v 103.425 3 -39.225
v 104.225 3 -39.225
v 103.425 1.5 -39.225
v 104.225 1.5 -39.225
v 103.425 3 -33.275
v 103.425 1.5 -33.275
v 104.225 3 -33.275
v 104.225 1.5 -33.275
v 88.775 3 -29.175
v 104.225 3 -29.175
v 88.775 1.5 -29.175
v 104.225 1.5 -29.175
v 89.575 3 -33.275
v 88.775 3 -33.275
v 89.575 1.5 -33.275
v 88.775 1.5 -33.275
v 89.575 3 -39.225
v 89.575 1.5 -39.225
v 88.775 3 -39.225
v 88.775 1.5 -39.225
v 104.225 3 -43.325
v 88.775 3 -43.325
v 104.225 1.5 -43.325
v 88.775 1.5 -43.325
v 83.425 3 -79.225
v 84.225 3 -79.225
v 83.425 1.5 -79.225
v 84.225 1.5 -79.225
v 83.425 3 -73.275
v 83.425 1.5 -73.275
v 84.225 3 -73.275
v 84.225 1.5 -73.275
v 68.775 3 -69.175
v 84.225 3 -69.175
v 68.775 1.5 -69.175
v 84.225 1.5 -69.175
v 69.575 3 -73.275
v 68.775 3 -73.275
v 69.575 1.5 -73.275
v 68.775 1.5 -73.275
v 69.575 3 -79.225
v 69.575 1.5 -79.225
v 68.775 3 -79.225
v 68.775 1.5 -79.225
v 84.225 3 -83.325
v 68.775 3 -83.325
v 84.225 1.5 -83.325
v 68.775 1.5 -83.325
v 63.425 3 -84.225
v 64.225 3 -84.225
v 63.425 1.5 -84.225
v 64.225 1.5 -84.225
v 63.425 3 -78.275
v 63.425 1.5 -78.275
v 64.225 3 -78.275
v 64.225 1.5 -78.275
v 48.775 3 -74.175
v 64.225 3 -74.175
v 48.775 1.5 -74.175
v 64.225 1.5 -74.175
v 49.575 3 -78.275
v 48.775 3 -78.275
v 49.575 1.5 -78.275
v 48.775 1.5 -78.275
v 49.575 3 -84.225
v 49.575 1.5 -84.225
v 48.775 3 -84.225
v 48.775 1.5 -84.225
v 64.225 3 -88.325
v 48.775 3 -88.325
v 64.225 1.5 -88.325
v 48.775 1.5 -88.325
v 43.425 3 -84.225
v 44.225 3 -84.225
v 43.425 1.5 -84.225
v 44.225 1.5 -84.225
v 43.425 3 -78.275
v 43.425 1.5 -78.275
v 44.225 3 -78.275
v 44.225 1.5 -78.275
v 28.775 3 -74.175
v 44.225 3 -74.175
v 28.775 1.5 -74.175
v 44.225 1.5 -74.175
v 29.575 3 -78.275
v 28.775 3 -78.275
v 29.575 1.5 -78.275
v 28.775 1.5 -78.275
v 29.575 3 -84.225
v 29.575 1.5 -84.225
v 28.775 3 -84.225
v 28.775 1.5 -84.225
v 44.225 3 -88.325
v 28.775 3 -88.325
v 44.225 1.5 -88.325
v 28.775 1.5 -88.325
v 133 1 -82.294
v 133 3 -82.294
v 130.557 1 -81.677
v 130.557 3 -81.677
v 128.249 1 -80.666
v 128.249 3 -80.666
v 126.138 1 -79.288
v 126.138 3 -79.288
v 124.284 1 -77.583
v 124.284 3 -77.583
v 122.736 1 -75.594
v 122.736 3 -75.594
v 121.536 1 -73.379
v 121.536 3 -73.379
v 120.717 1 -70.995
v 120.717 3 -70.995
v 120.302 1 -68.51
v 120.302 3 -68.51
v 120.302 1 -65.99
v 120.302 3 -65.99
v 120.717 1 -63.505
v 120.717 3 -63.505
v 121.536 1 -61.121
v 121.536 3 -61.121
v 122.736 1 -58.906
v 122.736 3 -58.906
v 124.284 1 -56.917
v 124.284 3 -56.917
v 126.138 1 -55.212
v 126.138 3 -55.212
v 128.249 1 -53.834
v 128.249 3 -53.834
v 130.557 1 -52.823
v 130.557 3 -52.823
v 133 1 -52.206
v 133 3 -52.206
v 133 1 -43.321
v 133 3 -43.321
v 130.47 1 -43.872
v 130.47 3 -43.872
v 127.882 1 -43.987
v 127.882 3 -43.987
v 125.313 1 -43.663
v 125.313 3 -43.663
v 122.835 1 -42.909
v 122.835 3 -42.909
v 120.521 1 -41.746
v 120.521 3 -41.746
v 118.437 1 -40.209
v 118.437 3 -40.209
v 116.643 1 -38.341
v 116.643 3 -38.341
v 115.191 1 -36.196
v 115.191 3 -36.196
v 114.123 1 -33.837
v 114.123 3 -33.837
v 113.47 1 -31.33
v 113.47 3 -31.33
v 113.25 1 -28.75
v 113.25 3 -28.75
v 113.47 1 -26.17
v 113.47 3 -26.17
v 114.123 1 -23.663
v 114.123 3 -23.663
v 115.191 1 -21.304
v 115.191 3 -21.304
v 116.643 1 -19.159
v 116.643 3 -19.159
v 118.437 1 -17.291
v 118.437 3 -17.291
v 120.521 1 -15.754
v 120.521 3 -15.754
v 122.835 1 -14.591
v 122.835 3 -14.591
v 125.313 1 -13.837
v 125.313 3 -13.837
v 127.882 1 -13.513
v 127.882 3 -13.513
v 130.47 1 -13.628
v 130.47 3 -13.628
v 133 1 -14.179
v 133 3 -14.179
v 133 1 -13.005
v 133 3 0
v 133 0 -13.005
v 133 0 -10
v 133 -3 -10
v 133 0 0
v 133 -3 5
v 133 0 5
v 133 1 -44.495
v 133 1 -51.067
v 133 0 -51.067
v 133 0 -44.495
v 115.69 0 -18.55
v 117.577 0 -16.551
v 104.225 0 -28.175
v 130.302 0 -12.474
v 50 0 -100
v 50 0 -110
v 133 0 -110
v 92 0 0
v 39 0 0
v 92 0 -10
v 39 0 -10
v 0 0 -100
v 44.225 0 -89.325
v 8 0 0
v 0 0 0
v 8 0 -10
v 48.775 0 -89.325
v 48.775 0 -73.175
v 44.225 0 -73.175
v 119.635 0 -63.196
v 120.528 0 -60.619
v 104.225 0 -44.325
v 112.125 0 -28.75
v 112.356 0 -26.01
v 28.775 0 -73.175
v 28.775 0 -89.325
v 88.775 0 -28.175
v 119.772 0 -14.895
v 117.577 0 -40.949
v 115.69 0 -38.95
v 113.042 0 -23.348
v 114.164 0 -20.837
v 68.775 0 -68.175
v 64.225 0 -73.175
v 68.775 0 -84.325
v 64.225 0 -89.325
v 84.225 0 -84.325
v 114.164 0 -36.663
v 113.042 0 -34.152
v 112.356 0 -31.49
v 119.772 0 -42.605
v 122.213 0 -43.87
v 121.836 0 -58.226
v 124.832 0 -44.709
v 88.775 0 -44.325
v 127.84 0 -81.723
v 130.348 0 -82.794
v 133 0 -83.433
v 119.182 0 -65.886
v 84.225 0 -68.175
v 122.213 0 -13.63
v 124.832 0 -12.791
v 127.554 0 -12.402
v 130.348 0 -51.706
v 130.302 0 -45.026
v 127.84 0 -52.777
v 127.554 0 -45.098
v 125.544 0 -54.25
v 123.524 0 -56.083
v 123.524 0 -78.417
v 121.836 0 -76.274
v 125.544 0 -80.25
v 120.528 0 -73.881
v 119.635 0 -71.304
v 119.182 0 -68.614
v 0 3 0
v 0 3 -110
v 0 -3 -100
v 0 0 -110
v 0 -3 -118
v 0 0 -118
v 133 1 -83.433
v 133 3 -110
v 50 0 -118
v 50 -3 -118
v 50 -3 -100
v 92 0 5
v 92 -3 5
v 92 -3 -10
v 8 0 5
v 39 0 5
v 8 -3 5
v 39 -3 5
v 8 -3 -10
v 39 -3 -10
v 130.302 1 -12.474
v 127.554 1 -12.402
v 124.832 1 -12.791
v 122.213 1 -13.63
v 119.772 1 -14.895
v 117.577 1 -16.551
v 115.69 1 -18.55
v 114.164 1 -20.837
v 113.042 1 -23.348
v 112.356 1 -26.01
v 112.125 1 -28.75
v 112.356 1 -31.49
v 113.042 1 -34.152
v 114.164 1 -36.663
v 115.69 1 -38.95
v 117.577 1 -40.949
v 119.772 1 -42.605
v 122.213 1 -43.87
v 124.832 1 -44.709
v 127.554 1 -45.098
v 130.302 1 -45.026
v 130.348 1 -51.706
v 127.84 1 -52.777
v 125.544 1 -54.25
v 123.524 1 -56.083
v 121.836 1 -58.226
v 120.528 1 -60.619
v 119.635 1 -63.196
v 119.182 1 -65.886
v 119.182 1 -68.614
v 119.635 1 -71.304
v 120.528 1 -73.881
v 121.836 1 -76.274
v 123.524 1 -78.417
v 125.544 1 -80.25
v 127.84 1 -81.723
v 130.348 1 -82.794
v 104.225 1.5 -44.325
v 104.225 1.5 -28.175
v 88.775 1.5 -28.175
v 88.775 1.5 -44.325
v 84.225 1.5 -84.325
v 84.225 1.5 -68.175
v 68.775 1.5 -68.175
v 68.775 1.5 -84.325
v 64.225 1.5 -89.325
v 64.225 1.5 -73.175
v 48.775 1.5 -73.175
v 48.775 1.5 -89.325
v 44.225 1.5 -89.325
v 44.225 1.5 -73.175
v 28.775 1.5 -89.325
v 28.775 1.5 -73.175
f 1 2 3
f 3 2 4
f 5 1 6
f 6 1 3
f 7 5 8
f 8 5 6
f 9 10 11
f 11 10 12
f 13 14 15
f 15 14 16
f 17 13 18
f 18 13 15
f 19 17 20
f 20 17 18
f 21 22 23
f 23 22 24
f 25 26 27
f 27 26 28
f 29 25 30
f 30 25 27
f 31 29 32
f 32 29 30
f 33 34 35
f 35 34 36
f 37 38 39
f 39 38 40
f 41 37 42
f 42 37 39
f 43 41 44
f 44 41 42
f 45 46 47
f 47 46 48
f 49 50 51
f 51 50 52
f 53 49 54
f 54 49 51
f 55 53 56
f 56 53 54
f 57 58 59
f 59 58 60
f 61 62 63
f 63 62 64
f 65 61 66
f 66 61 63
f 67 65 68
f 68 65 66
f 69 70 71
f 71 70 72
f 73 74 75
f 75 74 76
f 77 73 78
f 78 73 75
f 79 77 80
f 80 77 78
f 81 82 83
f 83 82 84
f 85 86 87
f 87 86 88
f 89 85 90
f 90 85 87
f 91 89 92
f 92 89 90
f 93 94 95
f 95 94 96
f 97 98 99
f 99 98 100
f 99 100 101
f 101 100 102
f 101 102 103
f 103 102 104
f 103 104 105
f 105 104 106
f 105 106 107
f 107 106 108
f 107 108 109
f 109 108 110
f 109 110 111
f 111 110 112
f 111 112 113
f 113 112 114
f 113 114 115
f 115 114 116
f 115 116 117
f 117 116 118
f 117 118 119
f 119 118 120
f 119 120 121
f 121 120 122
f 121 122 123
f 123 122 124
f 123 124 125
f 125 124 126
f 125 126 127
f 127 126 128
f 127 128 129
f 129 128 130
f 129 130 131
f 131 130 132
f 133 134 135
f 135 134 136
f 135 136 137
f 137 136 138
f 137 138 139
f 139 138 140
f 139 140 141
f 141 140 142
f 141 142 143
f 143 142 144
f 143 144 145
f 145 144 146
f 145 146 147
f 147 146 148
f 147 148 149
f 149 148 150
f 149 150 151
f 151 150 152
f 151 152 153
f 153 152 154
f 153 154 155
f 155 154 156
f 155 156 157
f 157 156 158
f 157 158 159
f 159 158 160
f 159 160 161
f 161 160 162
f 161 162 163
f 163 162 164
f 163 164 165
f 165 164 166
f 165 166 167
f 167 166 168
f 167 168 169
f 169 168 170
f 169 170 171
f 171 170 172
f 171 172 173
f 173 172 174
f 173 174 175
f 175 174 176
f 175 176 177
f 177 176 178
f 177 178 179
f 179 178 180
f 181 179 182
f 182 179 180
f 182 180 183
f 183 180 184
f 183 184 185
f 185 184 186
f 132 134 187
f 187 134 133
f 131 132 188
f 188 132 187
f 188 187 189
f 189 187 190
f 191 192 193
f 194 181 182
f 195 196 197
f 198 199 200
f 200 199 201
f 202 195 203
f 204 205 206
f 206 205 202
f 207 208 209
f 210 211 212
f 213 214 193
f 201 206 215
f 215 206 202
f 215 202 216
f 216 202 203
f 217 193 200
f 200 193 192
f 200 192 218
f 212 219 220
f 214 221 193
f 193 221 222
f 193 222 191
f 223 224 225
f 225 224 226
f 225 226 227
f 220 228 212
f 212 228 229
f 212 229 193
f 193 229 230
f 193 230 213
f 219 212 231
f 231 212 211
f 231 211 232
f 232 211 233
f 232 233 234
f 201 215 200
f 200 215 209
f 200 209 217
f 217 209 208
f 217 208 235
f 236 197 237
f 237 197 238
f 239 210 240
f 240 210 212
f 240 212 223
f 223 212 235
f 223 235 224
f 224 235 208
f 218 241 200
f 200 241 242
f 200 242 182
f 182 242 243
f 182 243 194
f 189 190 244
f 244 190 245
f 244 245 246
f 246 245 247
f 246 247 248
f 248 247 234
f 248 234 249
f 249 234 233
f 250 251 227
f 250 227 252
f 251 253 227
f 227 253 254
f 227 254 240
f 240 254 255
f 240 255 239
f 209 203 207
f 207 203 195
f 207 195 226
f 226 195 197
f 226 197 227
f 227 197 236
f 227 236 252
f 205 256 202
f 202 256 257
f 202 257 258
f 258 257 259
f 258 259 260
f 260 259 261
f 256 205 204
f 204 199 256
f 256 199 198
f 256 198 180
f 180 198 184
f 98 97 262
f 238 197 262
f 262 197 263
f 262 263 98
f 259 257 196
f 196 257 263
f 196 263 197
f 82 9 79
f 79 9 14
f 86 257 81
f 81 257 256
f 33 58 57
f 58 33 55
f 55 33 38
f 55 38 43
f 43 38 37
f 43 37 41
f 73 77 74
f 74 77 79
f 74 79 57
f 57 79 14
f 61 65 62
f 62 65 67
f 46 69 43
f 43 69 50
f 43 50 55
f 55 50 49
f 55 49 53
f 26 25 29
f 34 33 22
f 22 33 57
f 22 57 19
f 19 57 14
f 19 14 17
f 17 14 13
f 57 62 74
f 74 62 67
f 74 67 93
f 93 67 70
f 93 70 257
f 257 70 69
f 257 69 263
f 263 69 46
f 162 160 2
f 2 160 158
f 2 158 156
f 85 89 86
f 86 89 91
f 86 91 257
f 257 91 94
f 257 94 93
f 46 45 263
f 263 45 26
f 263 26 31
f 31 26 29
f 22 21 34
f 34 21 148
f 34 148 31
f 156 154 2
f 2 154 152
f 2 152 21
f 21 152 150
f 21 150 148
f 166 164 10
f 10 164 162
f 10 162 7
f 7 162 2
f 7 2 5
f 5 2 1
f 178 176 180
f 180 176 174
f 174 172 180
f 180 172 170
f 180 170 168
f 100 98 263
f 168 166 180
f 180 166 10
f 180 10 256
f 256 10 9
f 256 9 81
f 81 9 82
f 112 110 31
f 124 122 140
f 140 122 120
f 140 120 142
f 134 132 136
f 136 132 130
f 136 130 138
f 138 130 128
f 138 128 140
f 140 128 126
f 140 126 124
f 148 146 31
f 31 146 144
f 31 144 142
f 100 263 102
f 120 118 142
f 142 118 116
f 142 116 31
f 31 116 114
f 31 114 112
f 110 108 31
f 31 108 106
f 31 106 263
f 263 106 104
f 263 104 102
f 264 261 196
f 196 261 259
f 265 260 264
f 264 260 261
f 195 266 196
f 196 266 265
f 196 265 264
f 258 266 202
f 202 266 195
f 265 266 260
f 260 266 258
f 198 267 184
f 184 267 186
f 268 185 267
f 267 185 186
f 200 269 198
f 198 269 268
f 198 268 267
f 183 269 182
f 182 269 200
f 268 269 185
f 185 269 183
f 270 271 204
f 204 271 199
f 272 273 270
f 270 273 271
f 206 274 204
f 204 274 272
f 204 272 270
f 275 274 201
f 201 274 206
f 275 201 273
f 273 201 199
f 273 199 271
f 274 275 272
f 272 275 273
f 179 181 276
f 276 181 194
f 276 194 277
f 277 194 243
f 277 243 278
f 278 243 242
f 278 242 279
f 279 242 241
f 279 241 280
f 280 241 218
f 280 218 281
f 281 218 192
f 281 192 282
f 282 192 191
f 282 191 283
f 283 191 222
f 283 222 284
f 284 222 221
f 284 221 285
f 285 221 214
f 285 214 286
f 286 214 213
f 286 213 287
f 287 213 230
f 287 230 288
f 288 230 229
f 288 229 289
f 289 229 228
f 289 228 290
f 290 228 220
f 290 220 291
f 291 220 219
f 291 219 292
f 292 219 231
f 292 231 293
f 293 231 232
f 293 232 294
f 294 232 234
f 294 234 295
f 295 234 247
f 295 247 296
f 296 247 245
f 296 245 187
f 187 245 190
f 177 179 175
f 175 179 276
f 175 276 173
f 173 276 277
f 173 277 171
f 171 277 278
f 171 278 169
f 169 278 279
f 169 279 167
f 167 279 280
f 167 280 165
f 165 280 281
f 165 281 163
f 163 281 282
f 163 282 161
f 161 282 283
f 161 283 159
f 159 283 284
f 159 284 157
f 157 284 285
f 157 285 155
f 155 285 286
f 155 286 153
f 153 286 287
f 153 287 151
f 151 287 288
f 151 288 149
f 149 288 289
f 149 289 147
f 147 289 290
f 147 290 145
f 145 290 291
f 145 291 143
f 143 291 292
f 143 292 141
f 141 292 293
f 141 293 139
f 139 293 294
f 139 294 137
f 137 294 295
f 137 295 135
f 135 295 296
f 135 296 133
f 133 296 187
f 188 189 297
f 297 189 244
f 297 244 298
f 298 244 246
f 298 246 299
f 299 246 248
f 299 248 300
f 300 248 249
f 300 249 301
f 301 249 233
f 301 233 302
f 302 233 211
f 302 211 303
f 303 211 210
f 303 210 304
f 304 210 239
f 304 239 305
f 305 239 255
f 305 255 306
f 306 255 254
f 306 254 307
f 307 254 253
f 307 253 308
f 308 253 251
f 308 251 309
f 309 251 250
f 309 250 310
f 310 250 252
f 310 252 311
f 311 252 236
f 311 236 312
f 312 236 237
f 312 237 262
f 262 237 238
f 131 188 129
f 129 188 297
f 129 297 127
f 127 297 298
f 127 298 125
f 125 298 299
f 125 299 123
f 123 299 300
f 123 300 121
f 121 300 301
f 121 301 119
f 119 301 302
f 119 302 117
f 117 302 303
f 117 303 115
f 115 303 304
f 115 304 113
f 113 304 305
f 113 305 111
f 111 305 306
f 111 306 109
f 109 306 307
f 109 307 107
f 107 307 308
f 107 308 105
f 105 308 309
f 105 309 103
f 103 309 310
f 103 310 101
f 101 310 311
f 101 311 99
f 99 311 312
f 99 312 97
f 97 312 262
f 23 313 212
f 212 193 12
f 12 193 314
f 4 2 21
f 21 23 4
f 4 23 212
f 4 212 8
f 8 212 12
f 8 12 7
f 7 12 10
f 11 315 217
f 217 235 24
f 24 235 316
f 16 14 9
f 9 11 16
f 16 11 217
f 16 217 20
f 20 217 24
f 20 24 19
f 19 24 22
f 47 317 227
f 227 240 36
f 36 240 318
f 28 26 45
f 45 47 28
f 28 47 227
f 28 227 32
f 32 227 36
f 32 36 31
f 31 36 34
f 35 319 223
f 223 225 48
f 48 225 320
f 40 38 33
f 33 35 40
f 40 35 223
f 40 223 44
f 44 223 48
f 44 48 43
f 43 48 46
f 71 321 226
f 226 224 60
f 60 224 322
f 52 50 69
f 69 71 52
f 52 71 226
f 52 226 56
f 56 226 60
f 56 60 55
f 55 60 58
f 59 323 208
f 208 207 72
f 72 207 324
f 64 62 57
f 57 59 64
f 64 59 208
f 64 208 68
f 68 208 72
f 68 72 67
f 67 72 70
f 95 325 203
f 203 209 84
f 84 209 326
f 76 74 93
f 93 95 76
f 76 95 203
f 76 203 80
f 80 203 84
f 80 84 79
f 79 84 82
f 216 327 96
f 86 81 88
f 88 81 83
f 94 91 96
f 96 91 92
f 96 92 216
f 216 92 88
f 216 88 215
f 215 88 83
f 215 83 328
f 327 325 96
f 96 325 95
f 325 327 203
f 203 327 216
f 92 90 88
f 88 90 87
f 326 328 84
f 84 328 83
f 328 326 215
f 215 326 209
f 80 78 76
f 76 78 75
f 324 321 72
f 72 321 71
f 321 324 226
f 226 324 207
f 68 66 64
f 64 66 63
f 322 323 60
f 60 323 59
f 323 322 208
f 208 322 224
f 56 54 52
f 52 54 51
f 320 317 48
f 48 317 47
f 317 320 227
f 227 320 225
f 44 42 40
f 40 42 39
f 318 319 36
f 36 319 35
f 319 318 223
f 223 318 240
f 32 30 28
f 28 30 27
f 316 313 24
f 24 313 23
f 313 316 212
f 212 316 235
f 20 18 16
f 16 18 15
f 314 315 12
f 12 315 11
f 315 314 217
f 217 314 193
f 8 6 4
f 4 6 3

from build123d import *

# Parameters (mm, degrees)
SKETCH1_W           = 133
SKETCH1_H           = 110
BOSS_EXTRUDE1_DEPTH = 3
SKETCH2_W           = 50
SKETCH2_H           = 18
SKETCH2_W_2         = 41
SKETCH2_H_2         = 15
SKETCH2_W_3         = 31
BOSS_EXTRUDE2_DEPTH = 3
CUT_EXTRUDE1_REACH  = 8
SKETCH3_R           = 15.25
SKETCH4_R           = 16.375
CUT_EXTRUDE2_DEPTH  = 1
CUT_EXTRUDE3_DEPTH  = 7
SKETCH7_W           = 15.45
SKETCH7_H           = 16.15
CUT_EXTRUDE4_DEPTH  = 1.5


with BuildPart() as part:
    # Sketch1 → Boss-Extrude1 (new body)
    with BuildSketch(Plane(origin=(0, 0, 0), x_dir=(1, 0, 0), z_dir=(0, 1, 0))):
        with Locations((66.5, 55)):
            Rectangle(SKETCH1_W, SKETCH1_H)
    extrude(amount=BOSS_EXTRUDE1_DEPTH)

    # Sketch2 → Boss-Extrude2 (add)
    with BuildSketch(Plane.XZ):
        with Locations((25, -109)):
            Rectangle(SKETCH2_W, SKETCH2_H)
        with Locations((112.5, -2.5)):
            Rectangle(SKETCH2_W_2, SKETCH2_H_2)
        with Locations((23.5, -2.5)):
            Rectangle(SKETCH2_W_3, SKETCH2_H_2)
    extrude(amount=BOSS_EXTRUDE2_DEPTH)

    # Sketch3 → Cut-Extrude1 (cut, up to next)
    with BuildSketch(Plane(origin=(0, 3, 0), x_dir=(1, 0, 0), z_dir=(0, 1, 0)), mode=Mode.PRIVATE) as cut_extrude1_sk1:
        with Locations((128.5, 28.75)):
            Circle(SKETCH3_R)
    cut_extrude1_tool1 = extrude(cut_extrude1_sk1.sketch, amount=-CUT_EXTRUDE1_REACH, mode=Mode.PRIVATE) & part.part
    add(cut_extrude1_tool1.solids().sort_by_distance((128.5, 3, -28.75))[0], mode=Mode.SUBTRACT)
    # Sketch3 → Cut-Extrude1 (cut, up to next)
    with BuildSketch(Plane(origin=(0, 3, 0), x_dir=(1, 0, 0), z_dir=(0, 1, 0)), mode=Mode.PRIVATE) as cut_extrude1_sk2:
        with Locations((135.5, 67.25)):
            Circle(SKETCH3_R)
    cut_extrude1_tool2 = extrude(cut_extrude1_sk2.sketch, amount=-CUT_EXTRUDE1_REACH, mode=Mode.PRIVATE) & part.part
    add(cut_extrude1_tool2.solids().sort_by_distance((135.5, 3, -67.25))[0], mode=Mode.SUBTRACT)

    # Sketch4 → Cut-Extrude2 (cut)
    with BuildSketch(Plane.XZ):
        with Locations((128.5, -28.75)):
            Circle(SKETCH4_R)
        with Locations((135.5, -67.25)):
            Circle(SKETCH4_R)
    extrude(amount=-CUT_EXTRUDE2_DEPTH, mode=Mode.SUBTRACT)

    # Sketch6 → Cut-Extrude3 (cut, through all)
    with BuildSketch(Plane(origin=(0, 3, 0), x_dir=(1, 0, 0), z_dir=(0, 1, 0))):
        Polygon((29.575, 84.225), (29.575, 78.275), (28.775, 78.275), (28.775, 74.175), (44.225, 74.175), (44.225, 78.275), (43.425, 78.275), (43.425, 84.225), (44.225, 84.225), (44.225, 88.325), (28.775, 88.325), (28.775, 84.225), align=None)
        Polygon((49.575, 84.225), (49.575, 78.275), (48.775, 78.275), (48.775, 74.175), (64.225, 74.175), (64.225, 78.275), (63.425, 78.275), (63.425, 84.225), (64.225, 84.225), (64.225, 88.325), (48.775, 88.325), (48.775, 84.225), align=None)
        Polygon((69.575, 79.225), (69.575, 73.275), (68.775, 73.275), (68.775, 69.175), (84.225, 69.175), (84.225, 73.275), (83.425, 73.275), (83.425, 79.225), (84.225, 79.225), (84.225, 83.325), (68.775, 83.325), (68.775, 79.225), align=None)
        Polygon((89.575, 39.225), (89.575, 33.275), (88.775, 33.275), (88.775, 29.175), (104.225, 29.175), (104.225, 33.275), (103.425, 33.275), (103.425, 39.225), (104.225, 39.225), (104.225, 43.325), (88.775, 43.325), (88.775, 39.225), align=None)
    extrude(amount=-CUT_EXTRUDE3_DEPTH, mode=Mode.SUBTRACT)

    # Sketch7 → Cut-Extrude4 (cut)
    with BuildSketch(Plane.XZ):
        with Locations((76.5, -76.25)):
            Rectangle(SKETCH7_W, SKETCH7_H)
        with Locations((96.5, -36.25)):
            Rectangle(SKETCH7_W, SKETCH7_H)
        with Locations((56.5, -81.25)):
            Rectangle(SKETCH7_W, SKETCH7_H)
        with Locations((36.5, -81.25)):
            Rectangle(SKETCH7_W, SKETCH7_H)
    extrude(amount=-CUT_EXTRUDE4_DEPTH, mode=Mode.SUBTRACT)


solid = part.part
